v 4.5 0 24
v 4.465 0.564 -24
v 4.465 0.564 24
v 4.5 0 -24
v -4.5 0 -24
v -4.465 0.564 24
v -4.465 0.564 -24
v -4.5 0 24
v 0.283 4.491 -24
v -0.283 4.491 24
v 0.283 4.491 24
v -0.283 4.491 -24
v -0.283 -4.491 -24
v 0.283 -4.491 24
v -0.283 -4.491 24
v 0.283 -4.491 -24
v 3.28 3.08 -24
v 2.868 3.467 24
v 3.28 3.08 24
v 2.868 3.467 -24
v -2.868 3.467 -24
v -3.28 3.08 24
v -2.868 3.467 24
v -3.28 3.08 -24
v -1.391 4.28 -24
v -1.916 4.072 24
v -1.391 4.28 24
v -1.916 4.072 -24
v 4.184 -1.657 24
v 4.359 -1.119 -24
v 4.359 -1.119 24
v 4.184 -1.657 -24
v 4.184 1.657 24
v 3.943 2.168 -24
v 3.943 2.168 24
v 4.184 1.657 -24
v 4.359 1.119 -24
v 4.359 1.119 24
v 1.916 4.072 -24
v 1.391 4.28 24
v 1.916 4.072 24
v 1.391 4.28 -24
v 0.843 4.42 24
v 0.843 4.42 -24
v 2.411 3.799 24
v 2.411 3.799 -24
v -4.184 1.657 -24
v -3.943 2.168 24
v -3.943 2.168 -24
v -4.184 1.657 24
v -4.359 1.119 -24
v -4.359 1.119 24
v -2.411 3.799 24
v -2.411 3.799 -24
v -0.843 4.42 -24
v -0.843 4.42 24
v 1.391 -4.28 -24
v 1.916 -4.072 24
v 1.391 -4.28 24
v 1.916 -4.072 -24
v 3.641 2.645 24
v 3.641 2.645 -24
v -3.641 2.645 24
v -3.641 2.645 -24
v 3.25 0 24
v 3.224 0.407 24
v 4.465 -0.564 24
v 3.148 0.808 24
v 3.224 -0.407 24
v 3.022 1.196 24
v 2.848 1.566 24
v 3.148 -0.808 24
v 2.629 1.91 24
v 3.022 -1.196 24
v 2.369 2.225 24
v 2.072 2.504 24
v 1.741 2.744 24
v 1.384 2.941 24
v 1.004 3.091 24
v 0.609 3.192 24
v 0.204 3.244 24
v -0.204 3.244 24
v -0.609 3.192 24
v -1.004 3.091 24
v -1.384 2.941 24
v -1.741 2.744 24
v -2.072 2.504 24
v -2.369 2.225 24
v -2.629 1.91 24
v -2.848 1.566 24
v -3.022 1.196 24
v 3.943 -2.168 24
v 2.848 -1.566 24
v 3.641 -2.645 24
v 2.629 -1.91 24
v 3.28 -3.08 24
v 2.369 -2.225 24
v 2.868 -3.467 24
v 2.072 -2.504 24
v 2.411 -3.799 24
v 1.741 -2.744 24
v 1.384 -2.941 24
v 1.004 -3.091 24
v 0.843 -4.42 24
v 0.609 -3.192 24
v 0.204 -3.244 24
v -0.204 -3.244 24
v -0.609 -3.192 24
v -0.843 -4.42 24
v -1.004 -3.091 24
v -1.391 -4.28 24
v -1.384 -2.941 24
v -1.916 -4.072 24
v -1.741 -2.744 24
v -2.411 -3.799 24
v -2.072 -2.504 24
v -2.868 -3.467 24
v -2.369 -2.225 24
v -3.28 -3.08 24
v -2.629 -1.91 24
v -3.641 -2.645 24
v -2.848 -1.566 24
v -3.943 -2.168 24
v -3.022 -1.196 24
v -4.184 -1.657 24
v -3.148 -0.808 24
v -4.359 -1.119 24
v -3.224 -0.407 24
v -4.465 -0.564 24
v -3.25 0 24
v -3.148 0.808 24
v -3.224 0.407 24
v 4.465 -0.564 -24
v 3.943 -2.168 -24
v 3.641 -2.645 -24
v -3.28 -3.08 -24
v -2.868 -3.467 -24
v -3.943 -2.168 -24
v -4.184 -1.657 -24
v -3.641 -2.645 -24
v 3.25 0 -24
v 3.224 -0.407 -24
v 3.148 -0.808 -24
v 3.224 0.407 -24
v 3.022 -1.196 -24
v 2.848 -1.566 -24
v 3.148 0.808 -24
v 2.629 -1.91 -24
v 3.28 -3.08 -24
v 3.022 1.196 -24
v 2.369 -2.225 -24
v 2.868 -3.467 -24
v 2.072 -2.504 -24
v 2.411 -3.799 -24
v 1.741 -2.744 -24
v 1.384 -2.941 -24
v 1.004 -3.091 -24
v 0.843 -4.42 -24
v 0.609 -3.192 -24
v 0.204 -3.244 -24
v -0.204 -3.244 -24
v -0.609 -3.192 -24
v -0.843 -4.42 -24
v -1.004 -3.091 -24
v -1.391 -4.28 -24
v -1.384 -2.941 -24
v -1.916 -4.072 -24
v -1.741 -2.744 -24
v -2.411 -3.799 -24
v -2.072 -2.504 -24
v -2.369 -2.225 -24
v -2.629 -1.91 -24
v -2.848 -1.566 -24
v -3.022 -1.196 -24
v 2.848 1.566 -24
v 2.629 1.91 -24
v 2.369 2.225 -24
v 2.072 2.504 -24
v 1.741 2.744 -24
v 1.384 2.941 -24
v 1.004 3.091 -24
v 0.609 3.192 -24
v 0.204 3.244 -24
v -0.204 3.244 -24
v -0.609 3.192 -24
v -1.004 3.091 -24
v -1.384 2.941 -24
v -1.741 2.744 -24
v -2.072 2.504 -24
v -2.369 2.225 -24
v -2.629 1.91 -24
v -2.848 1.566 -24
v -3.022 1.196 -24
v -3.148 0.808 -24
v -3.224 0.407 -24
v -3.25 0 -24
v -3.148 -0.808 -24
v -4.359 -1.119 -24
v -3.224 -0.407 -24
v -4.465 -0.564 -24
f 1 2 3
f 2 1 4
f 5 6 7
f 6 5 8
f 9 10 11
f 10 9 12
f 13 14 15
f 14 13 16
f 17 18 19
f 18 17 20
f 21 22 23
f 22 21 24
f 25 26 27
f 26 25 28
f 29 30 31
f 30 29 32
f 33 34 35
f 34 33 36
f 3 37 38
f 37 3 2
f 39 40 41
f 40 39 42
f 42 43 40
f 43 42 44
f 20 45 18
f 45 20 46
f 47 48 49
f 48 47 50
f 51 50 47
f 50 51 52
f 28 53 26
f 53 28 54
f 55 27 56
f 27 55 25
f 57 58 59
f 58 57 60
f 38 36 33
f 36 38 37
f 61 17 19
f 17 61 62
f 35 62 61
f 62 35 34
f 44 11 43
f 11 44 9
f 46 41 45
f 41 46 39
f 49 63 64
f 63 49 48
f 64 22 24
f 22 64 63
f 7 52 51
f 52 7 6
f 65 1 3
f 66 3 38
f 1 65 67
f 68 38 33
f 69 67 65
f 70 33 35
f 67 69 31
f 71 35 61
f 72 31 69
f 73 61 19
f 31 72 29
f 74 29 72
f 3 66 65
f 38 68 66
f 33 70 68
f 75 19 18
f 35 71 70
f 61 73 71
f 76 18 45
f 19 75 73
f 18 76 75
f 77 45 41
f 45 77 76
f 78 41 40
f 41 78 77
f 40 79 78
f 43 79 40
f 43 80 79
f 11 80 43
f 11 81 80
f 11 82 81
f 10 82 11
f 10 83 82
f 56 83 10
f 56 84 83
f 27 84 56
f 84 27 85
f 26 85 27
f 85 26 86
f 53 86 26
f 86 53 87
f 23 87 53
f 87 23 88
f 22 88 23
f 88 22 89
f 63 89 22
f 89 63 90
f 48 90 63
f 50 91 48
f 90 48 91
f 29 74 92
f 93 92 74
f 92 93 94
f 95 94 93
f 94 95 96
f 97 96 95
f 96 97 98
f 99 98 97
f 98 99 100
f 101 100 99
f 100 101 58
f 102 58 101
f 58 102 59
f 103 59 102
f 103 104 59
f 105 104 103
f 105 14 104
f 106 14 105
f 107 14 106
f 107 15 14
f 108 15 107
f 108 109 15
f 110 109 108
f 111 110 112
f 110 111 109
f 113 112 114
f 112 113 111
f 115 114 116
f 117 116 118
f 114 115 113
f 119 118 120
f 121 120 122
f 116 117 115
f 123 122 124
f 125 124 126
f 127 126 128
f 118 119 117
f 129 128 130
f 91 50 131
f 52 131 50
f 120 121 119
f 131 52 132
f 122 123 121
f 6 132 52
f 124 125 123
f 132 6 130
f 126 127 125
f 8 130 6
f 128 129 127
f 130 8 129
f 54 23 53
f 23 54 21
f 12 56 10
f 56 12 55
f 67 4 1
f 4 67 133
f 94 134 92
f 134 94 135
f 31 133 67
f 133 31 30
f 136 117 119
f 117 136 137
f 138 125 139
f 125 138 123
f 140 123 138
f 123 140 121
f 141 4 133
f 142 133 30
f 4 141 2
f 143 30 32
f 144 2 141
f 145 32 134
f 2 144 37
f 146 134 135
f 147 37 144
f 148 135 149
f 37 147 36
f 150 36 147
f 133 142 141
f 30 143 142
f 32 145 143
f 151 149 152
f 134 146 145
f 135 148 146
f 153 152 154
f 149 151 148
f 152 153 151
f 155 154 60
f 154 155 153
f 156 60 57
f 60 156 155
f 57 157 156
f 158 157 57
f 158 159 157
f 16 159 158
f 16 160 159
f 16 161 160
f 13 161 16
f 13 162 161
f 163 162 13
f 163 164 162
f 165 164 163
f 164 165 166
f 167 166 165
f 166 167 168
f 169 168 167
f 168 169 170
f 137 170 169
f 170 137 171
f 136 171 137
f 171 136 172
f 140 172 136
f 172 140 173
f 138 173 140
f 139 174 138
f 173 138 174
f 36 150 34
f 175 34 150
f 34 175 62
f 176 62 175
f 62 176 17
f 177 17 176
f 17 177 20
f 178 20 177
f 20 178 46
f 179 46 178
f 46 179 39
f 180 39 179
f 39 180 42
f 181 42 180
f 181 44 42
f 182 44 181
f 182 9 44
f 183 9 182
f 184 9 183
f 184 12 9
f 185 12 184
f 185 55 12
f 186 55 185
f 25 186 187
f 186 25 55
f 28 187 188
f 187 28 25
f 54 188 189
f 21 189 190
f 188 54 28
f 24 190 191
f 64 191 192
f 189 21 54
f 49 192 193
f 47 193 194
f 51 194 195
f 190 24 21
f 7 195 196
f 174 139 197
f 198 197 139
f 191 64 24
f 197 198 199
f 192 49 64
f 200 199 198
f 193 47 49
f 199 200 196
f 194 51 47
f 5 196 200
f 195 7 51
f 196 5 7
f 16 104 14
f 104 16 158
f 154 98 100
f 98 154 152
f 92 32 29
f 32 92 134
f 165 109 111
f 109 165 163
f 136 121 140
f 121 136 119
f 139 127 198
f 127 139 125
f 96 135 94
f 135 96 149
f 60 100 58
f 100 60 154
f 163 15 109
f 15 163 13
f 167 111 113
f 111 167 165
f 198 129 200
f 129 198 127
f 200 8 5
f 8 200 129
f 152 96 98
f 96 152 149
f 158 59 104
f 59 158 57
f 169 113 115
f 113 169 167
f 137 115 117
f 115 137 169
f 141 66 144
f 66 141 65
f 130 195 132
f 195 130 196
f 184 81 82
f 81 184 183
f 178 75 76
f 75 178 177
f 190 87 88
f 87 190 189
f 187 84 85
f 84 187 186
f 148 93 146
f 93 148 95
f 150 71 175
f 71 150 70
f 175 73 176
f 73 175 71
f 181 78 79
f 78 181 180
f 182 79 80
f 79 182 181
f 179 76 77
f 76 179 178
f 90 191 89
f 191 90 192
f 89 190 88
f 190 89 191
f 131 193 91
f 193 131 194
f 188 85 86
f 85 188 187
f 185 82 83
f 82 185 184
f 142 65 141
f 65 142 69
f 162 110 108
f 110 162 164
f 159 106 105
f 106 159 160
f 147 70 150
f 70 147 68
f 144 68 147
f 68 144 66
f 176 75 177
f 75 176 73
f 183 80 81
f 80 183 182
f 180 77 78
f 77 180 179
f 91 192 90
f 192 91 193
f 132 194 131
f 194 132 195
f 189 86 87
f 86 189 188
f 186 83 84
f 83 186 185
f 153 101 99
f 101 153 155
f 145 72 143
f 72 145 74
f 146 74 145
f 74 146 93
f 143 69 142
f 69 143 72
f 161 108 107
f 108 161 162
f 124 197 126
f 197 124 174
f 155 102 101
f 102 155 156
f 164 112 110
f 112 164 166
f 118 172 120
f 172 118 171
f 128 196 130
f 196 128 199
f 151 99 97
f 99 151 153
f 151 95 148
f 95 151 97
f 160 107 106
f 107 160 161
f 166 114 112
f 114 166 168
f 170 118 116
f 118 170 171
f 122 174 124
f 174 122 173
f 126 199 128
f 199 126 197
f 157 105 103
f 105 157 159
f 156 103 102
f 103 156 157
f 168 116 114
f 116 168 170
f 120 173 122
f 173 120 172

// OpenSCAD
$fn = 50;


difference() {
	union() {
		translate(v = [0, 0, -24.0000000000]) {
			cylinder(h = 48, r = 4.5000000000);
		}
	}
	union() {
		translate(v = [0, 0, -100.0000000000]) {
			cylinder(h = 200, r = 3.2500000000);
		}
	}
}
